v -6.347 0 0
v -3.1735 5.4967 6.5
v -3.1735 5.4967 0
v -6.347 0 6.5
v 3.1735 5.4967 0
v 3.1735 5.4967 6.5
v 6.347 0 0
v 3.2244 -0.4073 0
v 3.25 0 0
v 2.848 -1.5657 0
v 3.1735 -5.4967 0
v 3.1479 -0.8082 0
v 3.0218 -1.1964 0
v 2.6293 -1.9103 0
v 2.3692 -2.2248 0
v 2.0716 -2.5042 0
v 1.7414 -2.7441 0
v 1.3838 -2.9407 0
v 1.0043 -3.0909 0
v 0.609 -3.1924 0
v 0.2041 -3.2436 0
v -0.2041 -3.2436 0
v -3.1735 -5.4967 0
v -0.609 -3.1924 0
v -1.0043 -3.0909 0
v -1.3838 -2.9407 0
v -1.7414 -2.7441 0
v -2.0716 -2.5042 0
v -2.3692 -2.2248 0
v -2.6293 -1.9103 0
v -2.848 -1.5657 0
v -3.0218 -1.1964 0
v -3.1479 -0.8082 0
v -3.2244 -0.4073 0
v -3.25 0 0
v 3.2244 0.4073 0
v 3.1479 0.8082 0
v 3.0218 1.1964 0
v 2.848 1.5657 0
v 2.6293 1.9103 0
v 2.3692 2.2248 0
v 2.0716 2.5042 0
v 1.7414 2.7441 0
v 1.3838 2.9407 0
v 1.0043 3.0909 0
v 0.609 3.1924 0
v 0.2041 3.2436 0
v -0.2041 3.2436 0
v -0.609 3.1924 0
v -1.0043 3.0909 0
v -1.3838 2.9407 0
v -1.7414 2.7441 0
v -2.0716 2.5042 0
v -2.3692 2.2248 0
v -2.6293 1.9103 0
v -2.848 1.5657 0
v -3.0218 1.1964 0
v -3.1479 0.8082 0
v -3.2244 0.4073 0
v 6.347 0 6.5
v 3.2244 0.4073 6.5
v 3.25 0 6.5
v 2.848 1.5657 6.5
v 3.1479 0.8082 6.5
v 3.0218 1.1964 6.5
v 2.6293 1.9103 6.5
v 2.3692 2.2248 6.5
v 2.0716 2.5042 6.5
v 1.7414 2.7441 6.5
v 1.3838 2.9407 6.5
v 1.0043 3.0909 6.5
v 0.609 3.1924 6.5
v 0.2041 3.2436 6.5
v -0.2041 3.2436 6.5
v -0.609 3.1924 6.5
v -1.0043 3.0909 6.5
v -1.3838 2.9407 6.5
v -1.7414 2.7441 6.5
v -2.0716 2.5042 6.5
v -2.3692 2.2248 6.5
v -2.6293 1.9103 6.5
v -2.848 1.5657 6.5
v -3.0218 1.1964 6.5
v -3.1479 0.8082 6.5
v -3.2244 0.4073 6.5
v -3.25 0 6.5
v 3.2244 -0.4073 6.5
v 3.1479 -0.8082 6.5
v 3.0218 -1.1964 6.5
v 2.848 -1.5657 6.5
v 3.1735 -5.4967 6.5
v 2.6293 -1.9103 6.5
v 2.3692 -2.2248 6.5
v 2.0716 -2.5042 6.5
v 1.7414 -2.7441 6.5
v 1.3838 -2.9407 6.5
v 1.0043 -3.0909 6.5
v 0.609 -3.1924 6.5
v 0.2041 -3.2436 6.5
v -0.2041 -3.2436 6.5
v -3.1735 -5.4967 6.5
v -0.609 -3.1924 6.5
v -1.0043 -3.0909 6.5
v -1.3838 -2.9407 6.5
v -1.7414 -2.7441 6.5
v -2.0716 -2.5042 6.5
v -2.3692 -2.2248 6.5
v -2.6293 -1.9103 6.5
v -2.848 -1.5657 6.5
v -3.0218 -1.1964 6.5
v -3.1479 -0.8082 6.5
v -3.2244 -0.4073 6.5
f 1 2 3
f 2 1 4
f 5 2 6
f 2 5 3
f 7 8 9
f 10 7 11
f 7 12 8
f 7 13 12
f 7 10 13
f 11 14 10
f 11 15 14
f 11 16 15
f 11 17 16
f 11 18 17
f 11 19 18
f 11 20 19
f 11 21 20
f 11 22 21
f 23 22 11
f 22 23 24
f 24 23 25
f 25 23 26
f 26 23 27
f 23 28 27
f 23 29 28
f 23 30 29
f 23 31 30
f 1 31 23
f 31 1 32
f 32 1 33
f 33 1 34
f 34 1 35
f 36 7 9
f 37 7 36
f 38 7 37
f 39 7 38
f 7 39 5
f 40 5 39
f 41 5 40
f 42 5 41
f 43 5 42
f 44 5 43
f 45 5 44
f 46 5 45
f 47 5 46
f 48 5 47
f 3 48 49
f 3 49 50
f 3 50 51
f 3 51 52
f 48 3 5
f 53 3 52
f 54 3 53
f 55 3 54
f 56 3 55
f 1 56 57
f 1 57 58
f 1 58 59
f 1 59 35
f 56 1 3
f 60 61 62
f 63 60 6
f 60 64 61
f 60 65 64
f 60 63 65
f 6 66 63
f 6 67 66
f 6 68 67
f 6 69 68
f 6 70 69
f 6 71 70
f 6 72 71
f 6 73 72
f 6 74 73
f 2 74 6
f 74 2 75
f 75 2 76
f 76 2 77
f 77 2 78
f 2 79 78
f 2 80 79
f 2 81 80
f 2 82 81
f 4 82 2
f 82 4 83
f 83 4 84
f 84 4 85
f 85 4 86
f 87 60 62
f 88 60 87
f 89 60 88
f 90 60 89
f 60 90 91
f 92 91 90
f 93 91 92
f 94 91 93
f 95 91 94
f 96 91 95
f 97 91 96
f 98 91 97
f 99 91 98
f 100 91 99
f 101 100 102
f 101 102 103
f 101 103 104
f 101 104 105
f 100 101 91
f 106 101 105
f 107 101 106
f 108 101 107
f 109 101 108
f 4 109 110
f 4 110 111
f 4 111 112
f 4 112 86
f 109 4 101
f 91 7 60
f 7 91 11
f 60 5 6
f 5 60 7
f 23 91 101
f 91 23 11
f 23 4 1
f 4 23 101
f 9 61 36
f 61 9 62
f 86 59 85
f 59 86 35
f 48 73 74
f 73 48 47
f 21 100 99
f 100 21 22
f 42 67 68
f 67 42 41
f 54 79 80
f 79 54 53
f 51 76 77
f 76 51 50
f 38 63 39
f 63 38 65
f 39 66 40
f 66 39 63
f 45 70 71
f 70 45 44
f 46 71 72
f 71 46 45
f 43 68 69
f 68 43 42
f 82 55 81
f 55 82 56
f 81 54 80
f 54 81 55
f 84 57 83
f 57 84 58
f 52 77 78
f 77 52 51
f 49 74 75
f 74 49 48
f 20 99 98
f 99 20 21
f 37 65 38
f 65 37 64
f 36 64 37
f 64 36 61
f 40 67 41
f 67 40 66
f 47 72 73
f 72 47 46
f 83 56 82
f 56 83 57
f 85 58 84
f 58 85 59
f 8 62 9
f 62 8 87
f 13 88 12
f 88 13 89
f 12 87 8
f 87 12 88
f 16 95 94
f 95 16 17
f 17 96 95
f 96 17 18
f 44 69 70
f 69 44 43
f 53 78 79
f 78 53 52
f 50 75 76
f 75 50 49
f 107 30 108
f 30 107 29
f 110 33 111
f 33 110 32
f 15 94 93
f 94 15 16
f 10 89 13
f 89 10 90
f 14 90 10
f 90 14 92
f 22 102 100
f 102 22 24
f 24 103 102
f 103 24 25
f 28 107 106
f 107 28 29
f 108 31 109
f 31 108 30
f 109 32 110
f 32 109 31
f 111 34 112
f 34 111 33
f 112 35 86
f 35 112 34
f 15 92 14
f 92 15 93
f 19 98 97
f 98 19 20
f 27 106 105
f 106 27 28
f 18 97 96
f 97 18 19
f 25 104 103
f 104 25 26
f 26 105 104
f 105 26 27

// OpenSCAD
$fn = 50;


difference() {
	union() {
		translate(v = [0, 0, 0]) {
			rotate(a = [0, 0, 0]) {
				translate(v = [0, 0, 0]) {
					rotate(a = [0, 0, 0]) {
						linear_extrude(height = 6.5000000000) {
							polygon(points = [[6.3470000000, 0.0000000000], [3.1735000000, 5.4966632378], [-3.1735000000, 5.4966632378], [-6.3470000000, 0.0000000000], [-3.1735000000, -5.4966632378], [3.1735000000, -5.4966632378]]);
						}
					}
				}
			}
		}
	}
	union() {
		translate(v = [0, 0, -10]) {
			rotate(a = [0, 0, 0]) {
				cylinder(h = 20, r = 3.2500000000);
			}
		}
	}
}
